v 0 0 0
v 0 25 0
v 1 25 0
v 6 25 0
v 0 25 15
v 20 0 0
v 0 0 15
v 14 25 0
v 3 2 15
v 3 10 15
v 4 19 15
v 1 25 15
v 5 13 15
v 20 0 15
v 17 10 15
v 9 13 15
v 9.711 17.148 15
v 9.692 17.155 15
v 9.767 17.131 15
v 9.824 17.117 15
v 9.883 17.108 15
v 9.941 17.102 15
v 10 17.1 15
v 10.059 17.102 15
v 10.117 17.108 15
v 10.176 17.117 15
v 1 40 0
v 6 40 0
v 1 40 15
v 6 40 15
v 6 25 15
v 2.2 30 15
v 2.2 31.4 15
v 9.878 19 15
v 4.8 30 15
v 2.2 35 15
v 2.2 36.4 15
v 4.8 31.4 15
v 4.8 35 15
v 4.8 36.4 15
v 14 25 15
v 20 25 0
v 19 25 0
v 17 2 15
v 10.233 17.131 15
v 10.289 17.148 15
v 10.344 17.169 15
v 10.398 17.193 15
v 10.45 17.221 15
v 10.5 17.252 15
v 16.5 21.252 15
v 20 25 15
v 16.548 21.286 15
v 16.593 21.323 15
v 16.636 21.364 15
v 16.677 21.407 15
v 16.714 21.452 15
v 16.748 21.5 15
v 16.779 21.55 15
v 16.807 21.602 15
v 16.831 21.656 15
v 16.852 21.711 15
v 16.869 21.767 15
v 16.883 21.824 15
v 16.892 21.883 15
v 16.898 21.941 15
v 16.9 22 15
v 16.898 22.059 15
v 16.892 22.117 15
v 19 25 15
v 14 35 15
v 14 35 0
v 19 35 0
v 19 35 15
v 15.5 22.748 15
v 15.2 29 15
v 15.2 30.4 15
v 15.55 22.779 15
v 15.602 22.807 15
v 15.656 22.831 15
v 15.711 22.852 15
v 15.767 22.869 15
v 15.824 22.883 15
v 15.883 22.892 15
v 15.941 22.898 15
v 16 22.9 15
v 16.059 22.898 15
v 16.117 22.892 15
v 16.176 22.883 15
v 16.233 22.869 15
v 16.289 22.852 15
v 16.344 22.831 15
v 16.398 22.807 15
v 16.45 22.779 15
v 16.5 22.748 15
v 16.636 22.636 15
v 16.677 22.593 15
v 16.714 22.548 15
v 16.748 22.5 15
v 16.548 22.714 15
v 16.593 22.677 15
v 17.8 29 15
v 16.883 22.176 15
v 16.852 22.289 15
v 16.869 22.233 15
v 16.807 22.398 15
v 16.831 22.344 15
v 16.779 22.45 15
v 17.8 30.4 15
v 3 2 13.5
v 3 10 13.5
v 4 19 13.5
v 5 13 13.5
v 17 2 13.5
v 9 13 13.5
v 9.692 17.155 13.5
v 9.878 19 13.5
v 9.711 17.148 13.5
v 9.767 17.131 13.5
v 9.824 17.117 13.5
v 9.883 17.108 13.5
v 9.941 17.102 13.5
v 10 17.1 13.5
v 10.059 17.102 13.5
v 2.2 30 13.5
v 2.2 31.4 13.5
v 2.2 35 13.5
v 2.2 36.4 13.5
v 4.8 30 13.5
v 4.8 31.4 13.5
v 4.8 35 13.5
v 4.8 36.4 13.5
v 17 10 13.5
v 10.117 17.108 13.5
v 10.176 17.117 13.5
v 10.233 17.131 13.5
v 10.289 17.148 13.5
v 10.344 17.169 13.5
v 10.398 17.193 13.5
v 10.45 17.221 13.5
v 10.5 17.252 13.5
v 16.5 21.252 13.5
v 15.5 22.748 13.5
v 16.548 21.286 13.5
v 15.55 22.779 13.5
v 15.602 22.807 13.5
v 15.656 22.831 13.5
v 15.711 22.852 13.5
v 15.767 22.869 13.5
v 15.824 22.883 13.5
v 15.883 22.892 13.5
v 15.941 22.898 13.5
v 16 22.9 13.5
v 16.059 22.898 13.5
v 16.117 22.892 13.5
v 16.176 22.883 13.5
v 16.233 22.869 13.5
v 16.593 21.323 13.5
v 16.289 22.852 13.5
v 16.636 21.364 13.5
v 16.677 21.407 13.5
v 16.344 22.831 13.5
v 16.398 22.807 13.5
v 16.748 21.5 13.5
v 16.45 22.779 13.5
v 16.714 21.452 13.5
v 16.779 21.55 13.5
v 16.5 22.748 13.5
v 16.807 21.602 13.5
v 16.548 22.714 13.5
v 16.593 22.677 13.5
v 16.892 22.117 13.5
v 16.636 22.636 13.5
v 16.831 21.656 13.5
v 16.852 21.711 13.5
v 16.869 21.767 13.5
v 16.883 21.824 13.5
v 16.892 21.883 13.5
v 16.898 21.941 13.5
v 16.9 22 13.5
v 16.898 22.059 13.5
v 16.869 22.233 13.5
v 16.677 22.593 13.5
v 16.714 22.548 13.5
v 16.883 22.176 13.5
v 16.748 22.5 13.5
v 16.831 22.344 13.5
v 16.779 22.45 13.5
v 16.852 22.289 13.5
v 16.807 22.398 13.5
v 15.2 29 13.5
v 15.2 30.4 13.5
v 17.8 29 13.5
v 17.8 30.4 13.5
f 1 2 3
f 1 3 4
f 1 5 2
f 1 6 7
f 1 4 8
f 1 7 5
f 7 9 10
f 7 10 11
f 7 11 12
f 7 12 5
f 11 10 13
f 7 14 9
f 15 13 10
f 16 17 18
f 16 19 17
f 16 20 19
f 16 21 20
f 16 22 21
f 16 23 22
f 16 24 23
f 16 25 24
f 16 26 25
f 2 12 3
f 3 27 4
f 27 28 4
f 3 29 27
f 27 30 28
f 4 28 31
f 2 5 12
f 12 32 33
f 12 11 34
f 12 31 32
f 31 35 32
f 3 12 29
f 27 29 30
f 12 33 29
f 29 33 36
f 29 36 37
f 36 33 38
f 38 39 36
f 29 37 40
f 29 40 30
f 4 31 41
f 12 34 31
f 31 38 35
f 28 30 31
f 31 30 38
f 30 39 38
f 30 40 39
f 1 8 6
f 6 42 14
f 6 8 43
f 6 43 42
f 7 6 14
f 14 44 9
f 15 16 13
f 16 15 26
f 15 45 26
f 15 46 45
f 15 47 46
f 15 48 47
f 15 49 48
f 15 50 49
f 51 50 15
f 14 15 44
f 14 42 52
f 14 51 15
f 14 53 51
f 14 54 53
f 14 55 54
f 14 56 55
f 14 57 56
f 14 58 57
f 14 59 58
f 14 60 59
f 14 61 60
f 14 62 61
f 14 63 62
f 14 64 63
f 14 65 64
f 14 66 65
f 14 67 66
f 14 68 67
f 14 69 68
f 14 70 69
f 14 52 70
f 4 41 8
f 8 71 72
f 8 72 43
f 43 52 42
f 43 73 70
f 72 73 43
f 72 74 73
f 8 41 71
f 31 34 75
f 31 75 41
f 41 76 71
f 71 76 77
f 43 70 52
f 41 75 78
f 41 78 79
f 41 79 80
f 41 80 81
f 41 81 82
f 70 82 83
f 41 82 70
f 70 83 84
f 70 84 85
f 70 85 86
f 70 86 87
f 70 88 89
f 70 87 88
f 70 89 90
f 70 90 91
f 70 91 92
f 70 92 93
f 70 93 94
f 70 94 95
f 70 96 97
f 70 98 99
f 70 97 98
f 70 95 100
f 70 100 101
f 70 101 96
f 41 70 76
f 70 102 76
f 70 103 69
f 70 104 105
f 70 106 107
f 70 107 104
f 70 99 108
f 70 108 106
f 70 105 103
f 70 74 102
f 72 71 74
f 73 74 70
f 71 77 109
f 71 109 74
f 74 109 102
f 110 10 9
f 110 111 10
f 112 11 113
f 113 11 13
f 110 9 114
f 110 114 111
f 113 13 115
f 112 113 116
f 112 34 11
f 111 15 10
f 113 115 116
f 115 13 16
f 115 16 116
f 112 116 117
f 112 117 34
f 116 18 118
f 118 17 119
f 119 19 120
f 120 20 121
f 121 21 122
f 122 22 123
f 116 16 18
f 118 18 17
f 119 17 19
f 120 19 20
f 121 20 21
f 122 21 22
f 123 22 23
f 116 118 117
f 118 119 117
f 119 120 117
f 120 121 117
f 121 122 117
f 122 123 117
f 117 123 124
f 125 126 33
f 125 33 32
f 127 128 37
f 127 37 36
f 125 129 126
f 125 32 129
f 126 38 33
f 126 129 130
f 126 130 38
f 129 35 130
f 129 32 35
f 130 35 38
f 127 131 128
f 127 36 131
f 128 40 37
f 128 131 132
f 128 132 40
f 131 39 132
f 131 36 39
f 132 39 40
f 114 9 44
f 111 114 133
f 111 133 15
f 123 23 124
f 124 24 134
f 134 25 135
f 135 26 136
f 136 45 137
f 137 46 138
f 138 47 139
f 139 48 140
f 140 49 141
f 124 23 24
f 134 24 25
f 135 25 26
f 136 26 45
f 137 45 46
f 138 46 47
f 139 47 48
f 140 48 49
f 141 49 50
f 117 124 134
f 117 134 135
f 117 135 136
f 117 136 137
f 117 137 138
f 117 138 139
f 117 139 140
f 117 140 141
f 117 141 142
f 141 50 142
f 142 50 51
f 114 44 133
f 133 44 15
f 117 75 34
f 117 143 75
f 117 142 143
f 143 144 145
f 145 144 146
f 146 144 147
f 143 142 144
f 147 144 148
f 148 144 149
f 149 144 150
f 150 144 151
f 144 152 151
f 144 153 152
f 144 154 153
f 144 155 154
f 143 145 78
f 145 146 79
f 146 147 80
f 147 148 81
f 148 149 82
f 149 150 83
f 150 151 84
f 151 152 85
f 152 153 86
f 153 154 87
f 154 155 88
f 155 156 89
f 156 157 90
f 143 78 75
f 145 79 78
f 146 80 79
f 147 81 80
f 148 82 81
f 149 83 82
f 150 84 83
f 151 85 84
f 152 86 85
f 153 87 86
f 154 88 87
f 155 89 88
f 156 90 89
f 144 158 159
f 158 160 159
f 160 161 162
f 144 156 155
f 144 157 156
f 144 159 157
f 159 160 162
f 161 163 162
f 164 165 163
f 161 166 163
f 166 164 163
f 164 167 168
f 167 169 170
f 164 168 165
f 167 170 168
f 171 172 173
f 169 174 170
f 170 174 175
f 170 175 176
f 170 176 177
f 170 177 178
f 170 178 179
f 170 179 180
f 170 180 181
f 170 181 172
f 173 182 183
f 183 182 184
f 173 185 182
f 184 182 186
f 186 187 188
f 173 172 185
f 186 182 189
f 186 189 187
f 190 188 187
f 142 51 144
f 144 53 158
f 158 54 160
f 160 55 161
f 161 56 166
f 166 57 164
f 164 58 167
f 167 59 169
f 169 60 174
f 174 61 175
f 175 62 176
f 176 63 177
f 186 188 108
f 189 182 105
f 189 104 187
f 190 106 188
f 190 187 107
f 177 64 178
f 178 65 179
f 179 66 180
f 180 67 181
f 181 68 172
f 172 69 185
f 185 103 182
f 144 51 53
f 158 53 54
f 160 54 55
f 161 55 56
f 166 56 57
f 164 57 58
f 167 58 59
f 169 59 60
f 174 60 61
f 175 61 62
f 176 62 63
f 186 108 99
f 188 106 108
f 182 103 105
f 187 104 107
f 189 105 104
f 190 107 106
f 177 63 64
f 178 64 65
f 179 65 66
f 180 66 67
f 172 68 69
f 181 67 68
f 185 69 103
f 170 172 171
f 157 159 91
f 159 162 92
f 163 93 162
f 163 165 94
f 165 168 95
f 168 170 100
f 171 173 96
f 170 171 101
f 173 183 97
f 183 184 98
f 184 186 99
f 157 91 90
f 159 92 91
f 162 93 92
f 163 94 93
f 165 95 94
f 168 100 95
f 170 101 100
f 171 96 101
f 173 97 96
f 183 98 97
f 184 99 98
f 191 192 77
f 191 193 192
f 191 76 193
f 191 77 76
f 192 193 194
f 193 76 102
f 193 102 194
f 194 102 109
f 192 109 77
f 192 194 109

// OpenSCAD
// Building facade miniature for board games.
// Millimetres. X=width, Y=height, Z=depth.
// Print flat at Z=0; straight base at Y=0; front at Z=15.
// All recesses are blind and 1.5 mm deep. This is a solid piece.
$fn=96;
depth=15;
recess=1.5;
module rect(x,y,w,h) { translate([x,y]) square([w,h]); }
module disc(x,y,r) { translate([x,y]) circle(r=r); }
module line(a,b,w=1.4) {
    hull() { translate(a) circle(d=w); translate(b) circle(d=w); }
}
module frame(x,y,w,h,t=1.4) {
    difference() { rect(x,y,w,h); rect(x+t,y+t,w-2*t,h-2*t); }
}
module gear(x,y,r=6,inner=2.4) {
    translate([x,y]) difference() {
        polygon([for(i=[0:(r<4?15:23)]) let(n=(r<4?16:24),a=(i+1)*360/n,rr=(i%4<2?r:r-min(1.5,r*0.21))) [rr*cos(a),rr*sin(a)]]);
        circle(r=inner);
    }
}
module car(x,y,w=14,h=5) {
    translate([x,y]) union() {
        polygon([[0,0.8],[0,h*0.48],[w*0.2,h*0.48],
                 [w*0.35,h],[w*0.67,h],[w*0.82,h*0.48],
                 [w,h*0.35],[w,0.8]]);
        disc(w*0.23,0.8,1.3); disc(w*0.77,0.8,1.3);
    }
}
module recycling(x,y,r=6) {
    translate([x,y]) for(a=[0,120,240]) rotate(a) {
        line([-3.8,3.2],[1.2,3.2],1.6);
        polygon([[1.2,1.7],[4.2,3.2],[1.2,4.7]]);
    }
}
module cutface() { translate([0,0,depth-recess]) linear_extrude(height=recess+0.5) facade(); }
// All details are recessed into the same solid facade.
difference() {
    linear_extrude(height=depth) outline();
    cutface();
}


module outline() {
    union() { rect(0,0,20,25); rect(1,23,5,17); rect(14,23,5,12); }
}
module facade() {
    rect(3,2,14,8);
    polygon([[4,19],[10,19],[9,13],[5,13]]);
    line([10,18],[16,22],1.8);
    rect(2.2,30,2.6,1.4); rect(2.2,35,2.6,1.4);
    rect(15.2,29,2.6,1.4);
}
